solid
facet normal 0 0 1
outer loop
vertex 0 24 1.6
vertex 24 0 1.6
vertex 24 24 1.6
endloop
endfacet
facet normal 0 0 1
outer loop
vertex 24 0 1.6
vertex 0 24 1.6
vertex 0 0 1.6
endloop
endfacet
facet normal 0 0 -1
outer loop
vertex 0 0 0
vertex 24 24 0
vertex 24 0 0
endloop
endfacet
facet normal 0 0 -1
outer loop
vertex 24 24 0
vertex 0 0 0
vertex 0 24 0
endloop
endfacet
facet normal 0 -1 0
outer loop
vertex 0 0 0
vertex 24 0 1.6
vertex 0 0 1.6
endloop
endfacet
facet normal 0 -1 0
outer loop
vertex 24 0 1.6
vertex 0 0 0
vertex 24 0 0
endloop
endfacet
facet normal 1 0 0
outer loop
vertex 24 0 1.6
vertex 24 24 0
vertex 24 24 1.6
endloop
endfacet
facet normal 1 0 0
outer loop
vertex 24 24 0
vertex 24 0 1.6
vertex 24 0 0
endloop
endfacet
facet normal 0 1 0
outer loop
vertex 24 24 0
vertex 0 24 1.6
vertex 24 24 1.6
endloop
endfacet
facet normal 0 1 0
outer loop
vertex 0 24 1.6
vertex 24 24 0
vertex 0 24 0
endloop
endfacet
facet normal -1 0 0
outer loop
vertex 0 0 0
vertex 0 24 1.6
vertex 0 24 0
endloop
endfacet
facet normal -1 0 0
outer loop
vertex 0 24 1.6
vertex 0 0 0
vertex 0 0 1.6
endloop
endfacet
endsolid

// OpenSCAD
/* Warning, this is a very basic generator with a lot of approximation 
input data : [LQFP, 2VB, 24x24x1.6mm, 176, , A, C04-21013A]
generated by com.zoubworld.electronics.cad.model3d.Basic
Date : Sun Feb 15 10:50:49 CET 2026
*/

//body
color("black")
translate([0,0,0])
cube([24.0,24.0,1.6], center=false);
